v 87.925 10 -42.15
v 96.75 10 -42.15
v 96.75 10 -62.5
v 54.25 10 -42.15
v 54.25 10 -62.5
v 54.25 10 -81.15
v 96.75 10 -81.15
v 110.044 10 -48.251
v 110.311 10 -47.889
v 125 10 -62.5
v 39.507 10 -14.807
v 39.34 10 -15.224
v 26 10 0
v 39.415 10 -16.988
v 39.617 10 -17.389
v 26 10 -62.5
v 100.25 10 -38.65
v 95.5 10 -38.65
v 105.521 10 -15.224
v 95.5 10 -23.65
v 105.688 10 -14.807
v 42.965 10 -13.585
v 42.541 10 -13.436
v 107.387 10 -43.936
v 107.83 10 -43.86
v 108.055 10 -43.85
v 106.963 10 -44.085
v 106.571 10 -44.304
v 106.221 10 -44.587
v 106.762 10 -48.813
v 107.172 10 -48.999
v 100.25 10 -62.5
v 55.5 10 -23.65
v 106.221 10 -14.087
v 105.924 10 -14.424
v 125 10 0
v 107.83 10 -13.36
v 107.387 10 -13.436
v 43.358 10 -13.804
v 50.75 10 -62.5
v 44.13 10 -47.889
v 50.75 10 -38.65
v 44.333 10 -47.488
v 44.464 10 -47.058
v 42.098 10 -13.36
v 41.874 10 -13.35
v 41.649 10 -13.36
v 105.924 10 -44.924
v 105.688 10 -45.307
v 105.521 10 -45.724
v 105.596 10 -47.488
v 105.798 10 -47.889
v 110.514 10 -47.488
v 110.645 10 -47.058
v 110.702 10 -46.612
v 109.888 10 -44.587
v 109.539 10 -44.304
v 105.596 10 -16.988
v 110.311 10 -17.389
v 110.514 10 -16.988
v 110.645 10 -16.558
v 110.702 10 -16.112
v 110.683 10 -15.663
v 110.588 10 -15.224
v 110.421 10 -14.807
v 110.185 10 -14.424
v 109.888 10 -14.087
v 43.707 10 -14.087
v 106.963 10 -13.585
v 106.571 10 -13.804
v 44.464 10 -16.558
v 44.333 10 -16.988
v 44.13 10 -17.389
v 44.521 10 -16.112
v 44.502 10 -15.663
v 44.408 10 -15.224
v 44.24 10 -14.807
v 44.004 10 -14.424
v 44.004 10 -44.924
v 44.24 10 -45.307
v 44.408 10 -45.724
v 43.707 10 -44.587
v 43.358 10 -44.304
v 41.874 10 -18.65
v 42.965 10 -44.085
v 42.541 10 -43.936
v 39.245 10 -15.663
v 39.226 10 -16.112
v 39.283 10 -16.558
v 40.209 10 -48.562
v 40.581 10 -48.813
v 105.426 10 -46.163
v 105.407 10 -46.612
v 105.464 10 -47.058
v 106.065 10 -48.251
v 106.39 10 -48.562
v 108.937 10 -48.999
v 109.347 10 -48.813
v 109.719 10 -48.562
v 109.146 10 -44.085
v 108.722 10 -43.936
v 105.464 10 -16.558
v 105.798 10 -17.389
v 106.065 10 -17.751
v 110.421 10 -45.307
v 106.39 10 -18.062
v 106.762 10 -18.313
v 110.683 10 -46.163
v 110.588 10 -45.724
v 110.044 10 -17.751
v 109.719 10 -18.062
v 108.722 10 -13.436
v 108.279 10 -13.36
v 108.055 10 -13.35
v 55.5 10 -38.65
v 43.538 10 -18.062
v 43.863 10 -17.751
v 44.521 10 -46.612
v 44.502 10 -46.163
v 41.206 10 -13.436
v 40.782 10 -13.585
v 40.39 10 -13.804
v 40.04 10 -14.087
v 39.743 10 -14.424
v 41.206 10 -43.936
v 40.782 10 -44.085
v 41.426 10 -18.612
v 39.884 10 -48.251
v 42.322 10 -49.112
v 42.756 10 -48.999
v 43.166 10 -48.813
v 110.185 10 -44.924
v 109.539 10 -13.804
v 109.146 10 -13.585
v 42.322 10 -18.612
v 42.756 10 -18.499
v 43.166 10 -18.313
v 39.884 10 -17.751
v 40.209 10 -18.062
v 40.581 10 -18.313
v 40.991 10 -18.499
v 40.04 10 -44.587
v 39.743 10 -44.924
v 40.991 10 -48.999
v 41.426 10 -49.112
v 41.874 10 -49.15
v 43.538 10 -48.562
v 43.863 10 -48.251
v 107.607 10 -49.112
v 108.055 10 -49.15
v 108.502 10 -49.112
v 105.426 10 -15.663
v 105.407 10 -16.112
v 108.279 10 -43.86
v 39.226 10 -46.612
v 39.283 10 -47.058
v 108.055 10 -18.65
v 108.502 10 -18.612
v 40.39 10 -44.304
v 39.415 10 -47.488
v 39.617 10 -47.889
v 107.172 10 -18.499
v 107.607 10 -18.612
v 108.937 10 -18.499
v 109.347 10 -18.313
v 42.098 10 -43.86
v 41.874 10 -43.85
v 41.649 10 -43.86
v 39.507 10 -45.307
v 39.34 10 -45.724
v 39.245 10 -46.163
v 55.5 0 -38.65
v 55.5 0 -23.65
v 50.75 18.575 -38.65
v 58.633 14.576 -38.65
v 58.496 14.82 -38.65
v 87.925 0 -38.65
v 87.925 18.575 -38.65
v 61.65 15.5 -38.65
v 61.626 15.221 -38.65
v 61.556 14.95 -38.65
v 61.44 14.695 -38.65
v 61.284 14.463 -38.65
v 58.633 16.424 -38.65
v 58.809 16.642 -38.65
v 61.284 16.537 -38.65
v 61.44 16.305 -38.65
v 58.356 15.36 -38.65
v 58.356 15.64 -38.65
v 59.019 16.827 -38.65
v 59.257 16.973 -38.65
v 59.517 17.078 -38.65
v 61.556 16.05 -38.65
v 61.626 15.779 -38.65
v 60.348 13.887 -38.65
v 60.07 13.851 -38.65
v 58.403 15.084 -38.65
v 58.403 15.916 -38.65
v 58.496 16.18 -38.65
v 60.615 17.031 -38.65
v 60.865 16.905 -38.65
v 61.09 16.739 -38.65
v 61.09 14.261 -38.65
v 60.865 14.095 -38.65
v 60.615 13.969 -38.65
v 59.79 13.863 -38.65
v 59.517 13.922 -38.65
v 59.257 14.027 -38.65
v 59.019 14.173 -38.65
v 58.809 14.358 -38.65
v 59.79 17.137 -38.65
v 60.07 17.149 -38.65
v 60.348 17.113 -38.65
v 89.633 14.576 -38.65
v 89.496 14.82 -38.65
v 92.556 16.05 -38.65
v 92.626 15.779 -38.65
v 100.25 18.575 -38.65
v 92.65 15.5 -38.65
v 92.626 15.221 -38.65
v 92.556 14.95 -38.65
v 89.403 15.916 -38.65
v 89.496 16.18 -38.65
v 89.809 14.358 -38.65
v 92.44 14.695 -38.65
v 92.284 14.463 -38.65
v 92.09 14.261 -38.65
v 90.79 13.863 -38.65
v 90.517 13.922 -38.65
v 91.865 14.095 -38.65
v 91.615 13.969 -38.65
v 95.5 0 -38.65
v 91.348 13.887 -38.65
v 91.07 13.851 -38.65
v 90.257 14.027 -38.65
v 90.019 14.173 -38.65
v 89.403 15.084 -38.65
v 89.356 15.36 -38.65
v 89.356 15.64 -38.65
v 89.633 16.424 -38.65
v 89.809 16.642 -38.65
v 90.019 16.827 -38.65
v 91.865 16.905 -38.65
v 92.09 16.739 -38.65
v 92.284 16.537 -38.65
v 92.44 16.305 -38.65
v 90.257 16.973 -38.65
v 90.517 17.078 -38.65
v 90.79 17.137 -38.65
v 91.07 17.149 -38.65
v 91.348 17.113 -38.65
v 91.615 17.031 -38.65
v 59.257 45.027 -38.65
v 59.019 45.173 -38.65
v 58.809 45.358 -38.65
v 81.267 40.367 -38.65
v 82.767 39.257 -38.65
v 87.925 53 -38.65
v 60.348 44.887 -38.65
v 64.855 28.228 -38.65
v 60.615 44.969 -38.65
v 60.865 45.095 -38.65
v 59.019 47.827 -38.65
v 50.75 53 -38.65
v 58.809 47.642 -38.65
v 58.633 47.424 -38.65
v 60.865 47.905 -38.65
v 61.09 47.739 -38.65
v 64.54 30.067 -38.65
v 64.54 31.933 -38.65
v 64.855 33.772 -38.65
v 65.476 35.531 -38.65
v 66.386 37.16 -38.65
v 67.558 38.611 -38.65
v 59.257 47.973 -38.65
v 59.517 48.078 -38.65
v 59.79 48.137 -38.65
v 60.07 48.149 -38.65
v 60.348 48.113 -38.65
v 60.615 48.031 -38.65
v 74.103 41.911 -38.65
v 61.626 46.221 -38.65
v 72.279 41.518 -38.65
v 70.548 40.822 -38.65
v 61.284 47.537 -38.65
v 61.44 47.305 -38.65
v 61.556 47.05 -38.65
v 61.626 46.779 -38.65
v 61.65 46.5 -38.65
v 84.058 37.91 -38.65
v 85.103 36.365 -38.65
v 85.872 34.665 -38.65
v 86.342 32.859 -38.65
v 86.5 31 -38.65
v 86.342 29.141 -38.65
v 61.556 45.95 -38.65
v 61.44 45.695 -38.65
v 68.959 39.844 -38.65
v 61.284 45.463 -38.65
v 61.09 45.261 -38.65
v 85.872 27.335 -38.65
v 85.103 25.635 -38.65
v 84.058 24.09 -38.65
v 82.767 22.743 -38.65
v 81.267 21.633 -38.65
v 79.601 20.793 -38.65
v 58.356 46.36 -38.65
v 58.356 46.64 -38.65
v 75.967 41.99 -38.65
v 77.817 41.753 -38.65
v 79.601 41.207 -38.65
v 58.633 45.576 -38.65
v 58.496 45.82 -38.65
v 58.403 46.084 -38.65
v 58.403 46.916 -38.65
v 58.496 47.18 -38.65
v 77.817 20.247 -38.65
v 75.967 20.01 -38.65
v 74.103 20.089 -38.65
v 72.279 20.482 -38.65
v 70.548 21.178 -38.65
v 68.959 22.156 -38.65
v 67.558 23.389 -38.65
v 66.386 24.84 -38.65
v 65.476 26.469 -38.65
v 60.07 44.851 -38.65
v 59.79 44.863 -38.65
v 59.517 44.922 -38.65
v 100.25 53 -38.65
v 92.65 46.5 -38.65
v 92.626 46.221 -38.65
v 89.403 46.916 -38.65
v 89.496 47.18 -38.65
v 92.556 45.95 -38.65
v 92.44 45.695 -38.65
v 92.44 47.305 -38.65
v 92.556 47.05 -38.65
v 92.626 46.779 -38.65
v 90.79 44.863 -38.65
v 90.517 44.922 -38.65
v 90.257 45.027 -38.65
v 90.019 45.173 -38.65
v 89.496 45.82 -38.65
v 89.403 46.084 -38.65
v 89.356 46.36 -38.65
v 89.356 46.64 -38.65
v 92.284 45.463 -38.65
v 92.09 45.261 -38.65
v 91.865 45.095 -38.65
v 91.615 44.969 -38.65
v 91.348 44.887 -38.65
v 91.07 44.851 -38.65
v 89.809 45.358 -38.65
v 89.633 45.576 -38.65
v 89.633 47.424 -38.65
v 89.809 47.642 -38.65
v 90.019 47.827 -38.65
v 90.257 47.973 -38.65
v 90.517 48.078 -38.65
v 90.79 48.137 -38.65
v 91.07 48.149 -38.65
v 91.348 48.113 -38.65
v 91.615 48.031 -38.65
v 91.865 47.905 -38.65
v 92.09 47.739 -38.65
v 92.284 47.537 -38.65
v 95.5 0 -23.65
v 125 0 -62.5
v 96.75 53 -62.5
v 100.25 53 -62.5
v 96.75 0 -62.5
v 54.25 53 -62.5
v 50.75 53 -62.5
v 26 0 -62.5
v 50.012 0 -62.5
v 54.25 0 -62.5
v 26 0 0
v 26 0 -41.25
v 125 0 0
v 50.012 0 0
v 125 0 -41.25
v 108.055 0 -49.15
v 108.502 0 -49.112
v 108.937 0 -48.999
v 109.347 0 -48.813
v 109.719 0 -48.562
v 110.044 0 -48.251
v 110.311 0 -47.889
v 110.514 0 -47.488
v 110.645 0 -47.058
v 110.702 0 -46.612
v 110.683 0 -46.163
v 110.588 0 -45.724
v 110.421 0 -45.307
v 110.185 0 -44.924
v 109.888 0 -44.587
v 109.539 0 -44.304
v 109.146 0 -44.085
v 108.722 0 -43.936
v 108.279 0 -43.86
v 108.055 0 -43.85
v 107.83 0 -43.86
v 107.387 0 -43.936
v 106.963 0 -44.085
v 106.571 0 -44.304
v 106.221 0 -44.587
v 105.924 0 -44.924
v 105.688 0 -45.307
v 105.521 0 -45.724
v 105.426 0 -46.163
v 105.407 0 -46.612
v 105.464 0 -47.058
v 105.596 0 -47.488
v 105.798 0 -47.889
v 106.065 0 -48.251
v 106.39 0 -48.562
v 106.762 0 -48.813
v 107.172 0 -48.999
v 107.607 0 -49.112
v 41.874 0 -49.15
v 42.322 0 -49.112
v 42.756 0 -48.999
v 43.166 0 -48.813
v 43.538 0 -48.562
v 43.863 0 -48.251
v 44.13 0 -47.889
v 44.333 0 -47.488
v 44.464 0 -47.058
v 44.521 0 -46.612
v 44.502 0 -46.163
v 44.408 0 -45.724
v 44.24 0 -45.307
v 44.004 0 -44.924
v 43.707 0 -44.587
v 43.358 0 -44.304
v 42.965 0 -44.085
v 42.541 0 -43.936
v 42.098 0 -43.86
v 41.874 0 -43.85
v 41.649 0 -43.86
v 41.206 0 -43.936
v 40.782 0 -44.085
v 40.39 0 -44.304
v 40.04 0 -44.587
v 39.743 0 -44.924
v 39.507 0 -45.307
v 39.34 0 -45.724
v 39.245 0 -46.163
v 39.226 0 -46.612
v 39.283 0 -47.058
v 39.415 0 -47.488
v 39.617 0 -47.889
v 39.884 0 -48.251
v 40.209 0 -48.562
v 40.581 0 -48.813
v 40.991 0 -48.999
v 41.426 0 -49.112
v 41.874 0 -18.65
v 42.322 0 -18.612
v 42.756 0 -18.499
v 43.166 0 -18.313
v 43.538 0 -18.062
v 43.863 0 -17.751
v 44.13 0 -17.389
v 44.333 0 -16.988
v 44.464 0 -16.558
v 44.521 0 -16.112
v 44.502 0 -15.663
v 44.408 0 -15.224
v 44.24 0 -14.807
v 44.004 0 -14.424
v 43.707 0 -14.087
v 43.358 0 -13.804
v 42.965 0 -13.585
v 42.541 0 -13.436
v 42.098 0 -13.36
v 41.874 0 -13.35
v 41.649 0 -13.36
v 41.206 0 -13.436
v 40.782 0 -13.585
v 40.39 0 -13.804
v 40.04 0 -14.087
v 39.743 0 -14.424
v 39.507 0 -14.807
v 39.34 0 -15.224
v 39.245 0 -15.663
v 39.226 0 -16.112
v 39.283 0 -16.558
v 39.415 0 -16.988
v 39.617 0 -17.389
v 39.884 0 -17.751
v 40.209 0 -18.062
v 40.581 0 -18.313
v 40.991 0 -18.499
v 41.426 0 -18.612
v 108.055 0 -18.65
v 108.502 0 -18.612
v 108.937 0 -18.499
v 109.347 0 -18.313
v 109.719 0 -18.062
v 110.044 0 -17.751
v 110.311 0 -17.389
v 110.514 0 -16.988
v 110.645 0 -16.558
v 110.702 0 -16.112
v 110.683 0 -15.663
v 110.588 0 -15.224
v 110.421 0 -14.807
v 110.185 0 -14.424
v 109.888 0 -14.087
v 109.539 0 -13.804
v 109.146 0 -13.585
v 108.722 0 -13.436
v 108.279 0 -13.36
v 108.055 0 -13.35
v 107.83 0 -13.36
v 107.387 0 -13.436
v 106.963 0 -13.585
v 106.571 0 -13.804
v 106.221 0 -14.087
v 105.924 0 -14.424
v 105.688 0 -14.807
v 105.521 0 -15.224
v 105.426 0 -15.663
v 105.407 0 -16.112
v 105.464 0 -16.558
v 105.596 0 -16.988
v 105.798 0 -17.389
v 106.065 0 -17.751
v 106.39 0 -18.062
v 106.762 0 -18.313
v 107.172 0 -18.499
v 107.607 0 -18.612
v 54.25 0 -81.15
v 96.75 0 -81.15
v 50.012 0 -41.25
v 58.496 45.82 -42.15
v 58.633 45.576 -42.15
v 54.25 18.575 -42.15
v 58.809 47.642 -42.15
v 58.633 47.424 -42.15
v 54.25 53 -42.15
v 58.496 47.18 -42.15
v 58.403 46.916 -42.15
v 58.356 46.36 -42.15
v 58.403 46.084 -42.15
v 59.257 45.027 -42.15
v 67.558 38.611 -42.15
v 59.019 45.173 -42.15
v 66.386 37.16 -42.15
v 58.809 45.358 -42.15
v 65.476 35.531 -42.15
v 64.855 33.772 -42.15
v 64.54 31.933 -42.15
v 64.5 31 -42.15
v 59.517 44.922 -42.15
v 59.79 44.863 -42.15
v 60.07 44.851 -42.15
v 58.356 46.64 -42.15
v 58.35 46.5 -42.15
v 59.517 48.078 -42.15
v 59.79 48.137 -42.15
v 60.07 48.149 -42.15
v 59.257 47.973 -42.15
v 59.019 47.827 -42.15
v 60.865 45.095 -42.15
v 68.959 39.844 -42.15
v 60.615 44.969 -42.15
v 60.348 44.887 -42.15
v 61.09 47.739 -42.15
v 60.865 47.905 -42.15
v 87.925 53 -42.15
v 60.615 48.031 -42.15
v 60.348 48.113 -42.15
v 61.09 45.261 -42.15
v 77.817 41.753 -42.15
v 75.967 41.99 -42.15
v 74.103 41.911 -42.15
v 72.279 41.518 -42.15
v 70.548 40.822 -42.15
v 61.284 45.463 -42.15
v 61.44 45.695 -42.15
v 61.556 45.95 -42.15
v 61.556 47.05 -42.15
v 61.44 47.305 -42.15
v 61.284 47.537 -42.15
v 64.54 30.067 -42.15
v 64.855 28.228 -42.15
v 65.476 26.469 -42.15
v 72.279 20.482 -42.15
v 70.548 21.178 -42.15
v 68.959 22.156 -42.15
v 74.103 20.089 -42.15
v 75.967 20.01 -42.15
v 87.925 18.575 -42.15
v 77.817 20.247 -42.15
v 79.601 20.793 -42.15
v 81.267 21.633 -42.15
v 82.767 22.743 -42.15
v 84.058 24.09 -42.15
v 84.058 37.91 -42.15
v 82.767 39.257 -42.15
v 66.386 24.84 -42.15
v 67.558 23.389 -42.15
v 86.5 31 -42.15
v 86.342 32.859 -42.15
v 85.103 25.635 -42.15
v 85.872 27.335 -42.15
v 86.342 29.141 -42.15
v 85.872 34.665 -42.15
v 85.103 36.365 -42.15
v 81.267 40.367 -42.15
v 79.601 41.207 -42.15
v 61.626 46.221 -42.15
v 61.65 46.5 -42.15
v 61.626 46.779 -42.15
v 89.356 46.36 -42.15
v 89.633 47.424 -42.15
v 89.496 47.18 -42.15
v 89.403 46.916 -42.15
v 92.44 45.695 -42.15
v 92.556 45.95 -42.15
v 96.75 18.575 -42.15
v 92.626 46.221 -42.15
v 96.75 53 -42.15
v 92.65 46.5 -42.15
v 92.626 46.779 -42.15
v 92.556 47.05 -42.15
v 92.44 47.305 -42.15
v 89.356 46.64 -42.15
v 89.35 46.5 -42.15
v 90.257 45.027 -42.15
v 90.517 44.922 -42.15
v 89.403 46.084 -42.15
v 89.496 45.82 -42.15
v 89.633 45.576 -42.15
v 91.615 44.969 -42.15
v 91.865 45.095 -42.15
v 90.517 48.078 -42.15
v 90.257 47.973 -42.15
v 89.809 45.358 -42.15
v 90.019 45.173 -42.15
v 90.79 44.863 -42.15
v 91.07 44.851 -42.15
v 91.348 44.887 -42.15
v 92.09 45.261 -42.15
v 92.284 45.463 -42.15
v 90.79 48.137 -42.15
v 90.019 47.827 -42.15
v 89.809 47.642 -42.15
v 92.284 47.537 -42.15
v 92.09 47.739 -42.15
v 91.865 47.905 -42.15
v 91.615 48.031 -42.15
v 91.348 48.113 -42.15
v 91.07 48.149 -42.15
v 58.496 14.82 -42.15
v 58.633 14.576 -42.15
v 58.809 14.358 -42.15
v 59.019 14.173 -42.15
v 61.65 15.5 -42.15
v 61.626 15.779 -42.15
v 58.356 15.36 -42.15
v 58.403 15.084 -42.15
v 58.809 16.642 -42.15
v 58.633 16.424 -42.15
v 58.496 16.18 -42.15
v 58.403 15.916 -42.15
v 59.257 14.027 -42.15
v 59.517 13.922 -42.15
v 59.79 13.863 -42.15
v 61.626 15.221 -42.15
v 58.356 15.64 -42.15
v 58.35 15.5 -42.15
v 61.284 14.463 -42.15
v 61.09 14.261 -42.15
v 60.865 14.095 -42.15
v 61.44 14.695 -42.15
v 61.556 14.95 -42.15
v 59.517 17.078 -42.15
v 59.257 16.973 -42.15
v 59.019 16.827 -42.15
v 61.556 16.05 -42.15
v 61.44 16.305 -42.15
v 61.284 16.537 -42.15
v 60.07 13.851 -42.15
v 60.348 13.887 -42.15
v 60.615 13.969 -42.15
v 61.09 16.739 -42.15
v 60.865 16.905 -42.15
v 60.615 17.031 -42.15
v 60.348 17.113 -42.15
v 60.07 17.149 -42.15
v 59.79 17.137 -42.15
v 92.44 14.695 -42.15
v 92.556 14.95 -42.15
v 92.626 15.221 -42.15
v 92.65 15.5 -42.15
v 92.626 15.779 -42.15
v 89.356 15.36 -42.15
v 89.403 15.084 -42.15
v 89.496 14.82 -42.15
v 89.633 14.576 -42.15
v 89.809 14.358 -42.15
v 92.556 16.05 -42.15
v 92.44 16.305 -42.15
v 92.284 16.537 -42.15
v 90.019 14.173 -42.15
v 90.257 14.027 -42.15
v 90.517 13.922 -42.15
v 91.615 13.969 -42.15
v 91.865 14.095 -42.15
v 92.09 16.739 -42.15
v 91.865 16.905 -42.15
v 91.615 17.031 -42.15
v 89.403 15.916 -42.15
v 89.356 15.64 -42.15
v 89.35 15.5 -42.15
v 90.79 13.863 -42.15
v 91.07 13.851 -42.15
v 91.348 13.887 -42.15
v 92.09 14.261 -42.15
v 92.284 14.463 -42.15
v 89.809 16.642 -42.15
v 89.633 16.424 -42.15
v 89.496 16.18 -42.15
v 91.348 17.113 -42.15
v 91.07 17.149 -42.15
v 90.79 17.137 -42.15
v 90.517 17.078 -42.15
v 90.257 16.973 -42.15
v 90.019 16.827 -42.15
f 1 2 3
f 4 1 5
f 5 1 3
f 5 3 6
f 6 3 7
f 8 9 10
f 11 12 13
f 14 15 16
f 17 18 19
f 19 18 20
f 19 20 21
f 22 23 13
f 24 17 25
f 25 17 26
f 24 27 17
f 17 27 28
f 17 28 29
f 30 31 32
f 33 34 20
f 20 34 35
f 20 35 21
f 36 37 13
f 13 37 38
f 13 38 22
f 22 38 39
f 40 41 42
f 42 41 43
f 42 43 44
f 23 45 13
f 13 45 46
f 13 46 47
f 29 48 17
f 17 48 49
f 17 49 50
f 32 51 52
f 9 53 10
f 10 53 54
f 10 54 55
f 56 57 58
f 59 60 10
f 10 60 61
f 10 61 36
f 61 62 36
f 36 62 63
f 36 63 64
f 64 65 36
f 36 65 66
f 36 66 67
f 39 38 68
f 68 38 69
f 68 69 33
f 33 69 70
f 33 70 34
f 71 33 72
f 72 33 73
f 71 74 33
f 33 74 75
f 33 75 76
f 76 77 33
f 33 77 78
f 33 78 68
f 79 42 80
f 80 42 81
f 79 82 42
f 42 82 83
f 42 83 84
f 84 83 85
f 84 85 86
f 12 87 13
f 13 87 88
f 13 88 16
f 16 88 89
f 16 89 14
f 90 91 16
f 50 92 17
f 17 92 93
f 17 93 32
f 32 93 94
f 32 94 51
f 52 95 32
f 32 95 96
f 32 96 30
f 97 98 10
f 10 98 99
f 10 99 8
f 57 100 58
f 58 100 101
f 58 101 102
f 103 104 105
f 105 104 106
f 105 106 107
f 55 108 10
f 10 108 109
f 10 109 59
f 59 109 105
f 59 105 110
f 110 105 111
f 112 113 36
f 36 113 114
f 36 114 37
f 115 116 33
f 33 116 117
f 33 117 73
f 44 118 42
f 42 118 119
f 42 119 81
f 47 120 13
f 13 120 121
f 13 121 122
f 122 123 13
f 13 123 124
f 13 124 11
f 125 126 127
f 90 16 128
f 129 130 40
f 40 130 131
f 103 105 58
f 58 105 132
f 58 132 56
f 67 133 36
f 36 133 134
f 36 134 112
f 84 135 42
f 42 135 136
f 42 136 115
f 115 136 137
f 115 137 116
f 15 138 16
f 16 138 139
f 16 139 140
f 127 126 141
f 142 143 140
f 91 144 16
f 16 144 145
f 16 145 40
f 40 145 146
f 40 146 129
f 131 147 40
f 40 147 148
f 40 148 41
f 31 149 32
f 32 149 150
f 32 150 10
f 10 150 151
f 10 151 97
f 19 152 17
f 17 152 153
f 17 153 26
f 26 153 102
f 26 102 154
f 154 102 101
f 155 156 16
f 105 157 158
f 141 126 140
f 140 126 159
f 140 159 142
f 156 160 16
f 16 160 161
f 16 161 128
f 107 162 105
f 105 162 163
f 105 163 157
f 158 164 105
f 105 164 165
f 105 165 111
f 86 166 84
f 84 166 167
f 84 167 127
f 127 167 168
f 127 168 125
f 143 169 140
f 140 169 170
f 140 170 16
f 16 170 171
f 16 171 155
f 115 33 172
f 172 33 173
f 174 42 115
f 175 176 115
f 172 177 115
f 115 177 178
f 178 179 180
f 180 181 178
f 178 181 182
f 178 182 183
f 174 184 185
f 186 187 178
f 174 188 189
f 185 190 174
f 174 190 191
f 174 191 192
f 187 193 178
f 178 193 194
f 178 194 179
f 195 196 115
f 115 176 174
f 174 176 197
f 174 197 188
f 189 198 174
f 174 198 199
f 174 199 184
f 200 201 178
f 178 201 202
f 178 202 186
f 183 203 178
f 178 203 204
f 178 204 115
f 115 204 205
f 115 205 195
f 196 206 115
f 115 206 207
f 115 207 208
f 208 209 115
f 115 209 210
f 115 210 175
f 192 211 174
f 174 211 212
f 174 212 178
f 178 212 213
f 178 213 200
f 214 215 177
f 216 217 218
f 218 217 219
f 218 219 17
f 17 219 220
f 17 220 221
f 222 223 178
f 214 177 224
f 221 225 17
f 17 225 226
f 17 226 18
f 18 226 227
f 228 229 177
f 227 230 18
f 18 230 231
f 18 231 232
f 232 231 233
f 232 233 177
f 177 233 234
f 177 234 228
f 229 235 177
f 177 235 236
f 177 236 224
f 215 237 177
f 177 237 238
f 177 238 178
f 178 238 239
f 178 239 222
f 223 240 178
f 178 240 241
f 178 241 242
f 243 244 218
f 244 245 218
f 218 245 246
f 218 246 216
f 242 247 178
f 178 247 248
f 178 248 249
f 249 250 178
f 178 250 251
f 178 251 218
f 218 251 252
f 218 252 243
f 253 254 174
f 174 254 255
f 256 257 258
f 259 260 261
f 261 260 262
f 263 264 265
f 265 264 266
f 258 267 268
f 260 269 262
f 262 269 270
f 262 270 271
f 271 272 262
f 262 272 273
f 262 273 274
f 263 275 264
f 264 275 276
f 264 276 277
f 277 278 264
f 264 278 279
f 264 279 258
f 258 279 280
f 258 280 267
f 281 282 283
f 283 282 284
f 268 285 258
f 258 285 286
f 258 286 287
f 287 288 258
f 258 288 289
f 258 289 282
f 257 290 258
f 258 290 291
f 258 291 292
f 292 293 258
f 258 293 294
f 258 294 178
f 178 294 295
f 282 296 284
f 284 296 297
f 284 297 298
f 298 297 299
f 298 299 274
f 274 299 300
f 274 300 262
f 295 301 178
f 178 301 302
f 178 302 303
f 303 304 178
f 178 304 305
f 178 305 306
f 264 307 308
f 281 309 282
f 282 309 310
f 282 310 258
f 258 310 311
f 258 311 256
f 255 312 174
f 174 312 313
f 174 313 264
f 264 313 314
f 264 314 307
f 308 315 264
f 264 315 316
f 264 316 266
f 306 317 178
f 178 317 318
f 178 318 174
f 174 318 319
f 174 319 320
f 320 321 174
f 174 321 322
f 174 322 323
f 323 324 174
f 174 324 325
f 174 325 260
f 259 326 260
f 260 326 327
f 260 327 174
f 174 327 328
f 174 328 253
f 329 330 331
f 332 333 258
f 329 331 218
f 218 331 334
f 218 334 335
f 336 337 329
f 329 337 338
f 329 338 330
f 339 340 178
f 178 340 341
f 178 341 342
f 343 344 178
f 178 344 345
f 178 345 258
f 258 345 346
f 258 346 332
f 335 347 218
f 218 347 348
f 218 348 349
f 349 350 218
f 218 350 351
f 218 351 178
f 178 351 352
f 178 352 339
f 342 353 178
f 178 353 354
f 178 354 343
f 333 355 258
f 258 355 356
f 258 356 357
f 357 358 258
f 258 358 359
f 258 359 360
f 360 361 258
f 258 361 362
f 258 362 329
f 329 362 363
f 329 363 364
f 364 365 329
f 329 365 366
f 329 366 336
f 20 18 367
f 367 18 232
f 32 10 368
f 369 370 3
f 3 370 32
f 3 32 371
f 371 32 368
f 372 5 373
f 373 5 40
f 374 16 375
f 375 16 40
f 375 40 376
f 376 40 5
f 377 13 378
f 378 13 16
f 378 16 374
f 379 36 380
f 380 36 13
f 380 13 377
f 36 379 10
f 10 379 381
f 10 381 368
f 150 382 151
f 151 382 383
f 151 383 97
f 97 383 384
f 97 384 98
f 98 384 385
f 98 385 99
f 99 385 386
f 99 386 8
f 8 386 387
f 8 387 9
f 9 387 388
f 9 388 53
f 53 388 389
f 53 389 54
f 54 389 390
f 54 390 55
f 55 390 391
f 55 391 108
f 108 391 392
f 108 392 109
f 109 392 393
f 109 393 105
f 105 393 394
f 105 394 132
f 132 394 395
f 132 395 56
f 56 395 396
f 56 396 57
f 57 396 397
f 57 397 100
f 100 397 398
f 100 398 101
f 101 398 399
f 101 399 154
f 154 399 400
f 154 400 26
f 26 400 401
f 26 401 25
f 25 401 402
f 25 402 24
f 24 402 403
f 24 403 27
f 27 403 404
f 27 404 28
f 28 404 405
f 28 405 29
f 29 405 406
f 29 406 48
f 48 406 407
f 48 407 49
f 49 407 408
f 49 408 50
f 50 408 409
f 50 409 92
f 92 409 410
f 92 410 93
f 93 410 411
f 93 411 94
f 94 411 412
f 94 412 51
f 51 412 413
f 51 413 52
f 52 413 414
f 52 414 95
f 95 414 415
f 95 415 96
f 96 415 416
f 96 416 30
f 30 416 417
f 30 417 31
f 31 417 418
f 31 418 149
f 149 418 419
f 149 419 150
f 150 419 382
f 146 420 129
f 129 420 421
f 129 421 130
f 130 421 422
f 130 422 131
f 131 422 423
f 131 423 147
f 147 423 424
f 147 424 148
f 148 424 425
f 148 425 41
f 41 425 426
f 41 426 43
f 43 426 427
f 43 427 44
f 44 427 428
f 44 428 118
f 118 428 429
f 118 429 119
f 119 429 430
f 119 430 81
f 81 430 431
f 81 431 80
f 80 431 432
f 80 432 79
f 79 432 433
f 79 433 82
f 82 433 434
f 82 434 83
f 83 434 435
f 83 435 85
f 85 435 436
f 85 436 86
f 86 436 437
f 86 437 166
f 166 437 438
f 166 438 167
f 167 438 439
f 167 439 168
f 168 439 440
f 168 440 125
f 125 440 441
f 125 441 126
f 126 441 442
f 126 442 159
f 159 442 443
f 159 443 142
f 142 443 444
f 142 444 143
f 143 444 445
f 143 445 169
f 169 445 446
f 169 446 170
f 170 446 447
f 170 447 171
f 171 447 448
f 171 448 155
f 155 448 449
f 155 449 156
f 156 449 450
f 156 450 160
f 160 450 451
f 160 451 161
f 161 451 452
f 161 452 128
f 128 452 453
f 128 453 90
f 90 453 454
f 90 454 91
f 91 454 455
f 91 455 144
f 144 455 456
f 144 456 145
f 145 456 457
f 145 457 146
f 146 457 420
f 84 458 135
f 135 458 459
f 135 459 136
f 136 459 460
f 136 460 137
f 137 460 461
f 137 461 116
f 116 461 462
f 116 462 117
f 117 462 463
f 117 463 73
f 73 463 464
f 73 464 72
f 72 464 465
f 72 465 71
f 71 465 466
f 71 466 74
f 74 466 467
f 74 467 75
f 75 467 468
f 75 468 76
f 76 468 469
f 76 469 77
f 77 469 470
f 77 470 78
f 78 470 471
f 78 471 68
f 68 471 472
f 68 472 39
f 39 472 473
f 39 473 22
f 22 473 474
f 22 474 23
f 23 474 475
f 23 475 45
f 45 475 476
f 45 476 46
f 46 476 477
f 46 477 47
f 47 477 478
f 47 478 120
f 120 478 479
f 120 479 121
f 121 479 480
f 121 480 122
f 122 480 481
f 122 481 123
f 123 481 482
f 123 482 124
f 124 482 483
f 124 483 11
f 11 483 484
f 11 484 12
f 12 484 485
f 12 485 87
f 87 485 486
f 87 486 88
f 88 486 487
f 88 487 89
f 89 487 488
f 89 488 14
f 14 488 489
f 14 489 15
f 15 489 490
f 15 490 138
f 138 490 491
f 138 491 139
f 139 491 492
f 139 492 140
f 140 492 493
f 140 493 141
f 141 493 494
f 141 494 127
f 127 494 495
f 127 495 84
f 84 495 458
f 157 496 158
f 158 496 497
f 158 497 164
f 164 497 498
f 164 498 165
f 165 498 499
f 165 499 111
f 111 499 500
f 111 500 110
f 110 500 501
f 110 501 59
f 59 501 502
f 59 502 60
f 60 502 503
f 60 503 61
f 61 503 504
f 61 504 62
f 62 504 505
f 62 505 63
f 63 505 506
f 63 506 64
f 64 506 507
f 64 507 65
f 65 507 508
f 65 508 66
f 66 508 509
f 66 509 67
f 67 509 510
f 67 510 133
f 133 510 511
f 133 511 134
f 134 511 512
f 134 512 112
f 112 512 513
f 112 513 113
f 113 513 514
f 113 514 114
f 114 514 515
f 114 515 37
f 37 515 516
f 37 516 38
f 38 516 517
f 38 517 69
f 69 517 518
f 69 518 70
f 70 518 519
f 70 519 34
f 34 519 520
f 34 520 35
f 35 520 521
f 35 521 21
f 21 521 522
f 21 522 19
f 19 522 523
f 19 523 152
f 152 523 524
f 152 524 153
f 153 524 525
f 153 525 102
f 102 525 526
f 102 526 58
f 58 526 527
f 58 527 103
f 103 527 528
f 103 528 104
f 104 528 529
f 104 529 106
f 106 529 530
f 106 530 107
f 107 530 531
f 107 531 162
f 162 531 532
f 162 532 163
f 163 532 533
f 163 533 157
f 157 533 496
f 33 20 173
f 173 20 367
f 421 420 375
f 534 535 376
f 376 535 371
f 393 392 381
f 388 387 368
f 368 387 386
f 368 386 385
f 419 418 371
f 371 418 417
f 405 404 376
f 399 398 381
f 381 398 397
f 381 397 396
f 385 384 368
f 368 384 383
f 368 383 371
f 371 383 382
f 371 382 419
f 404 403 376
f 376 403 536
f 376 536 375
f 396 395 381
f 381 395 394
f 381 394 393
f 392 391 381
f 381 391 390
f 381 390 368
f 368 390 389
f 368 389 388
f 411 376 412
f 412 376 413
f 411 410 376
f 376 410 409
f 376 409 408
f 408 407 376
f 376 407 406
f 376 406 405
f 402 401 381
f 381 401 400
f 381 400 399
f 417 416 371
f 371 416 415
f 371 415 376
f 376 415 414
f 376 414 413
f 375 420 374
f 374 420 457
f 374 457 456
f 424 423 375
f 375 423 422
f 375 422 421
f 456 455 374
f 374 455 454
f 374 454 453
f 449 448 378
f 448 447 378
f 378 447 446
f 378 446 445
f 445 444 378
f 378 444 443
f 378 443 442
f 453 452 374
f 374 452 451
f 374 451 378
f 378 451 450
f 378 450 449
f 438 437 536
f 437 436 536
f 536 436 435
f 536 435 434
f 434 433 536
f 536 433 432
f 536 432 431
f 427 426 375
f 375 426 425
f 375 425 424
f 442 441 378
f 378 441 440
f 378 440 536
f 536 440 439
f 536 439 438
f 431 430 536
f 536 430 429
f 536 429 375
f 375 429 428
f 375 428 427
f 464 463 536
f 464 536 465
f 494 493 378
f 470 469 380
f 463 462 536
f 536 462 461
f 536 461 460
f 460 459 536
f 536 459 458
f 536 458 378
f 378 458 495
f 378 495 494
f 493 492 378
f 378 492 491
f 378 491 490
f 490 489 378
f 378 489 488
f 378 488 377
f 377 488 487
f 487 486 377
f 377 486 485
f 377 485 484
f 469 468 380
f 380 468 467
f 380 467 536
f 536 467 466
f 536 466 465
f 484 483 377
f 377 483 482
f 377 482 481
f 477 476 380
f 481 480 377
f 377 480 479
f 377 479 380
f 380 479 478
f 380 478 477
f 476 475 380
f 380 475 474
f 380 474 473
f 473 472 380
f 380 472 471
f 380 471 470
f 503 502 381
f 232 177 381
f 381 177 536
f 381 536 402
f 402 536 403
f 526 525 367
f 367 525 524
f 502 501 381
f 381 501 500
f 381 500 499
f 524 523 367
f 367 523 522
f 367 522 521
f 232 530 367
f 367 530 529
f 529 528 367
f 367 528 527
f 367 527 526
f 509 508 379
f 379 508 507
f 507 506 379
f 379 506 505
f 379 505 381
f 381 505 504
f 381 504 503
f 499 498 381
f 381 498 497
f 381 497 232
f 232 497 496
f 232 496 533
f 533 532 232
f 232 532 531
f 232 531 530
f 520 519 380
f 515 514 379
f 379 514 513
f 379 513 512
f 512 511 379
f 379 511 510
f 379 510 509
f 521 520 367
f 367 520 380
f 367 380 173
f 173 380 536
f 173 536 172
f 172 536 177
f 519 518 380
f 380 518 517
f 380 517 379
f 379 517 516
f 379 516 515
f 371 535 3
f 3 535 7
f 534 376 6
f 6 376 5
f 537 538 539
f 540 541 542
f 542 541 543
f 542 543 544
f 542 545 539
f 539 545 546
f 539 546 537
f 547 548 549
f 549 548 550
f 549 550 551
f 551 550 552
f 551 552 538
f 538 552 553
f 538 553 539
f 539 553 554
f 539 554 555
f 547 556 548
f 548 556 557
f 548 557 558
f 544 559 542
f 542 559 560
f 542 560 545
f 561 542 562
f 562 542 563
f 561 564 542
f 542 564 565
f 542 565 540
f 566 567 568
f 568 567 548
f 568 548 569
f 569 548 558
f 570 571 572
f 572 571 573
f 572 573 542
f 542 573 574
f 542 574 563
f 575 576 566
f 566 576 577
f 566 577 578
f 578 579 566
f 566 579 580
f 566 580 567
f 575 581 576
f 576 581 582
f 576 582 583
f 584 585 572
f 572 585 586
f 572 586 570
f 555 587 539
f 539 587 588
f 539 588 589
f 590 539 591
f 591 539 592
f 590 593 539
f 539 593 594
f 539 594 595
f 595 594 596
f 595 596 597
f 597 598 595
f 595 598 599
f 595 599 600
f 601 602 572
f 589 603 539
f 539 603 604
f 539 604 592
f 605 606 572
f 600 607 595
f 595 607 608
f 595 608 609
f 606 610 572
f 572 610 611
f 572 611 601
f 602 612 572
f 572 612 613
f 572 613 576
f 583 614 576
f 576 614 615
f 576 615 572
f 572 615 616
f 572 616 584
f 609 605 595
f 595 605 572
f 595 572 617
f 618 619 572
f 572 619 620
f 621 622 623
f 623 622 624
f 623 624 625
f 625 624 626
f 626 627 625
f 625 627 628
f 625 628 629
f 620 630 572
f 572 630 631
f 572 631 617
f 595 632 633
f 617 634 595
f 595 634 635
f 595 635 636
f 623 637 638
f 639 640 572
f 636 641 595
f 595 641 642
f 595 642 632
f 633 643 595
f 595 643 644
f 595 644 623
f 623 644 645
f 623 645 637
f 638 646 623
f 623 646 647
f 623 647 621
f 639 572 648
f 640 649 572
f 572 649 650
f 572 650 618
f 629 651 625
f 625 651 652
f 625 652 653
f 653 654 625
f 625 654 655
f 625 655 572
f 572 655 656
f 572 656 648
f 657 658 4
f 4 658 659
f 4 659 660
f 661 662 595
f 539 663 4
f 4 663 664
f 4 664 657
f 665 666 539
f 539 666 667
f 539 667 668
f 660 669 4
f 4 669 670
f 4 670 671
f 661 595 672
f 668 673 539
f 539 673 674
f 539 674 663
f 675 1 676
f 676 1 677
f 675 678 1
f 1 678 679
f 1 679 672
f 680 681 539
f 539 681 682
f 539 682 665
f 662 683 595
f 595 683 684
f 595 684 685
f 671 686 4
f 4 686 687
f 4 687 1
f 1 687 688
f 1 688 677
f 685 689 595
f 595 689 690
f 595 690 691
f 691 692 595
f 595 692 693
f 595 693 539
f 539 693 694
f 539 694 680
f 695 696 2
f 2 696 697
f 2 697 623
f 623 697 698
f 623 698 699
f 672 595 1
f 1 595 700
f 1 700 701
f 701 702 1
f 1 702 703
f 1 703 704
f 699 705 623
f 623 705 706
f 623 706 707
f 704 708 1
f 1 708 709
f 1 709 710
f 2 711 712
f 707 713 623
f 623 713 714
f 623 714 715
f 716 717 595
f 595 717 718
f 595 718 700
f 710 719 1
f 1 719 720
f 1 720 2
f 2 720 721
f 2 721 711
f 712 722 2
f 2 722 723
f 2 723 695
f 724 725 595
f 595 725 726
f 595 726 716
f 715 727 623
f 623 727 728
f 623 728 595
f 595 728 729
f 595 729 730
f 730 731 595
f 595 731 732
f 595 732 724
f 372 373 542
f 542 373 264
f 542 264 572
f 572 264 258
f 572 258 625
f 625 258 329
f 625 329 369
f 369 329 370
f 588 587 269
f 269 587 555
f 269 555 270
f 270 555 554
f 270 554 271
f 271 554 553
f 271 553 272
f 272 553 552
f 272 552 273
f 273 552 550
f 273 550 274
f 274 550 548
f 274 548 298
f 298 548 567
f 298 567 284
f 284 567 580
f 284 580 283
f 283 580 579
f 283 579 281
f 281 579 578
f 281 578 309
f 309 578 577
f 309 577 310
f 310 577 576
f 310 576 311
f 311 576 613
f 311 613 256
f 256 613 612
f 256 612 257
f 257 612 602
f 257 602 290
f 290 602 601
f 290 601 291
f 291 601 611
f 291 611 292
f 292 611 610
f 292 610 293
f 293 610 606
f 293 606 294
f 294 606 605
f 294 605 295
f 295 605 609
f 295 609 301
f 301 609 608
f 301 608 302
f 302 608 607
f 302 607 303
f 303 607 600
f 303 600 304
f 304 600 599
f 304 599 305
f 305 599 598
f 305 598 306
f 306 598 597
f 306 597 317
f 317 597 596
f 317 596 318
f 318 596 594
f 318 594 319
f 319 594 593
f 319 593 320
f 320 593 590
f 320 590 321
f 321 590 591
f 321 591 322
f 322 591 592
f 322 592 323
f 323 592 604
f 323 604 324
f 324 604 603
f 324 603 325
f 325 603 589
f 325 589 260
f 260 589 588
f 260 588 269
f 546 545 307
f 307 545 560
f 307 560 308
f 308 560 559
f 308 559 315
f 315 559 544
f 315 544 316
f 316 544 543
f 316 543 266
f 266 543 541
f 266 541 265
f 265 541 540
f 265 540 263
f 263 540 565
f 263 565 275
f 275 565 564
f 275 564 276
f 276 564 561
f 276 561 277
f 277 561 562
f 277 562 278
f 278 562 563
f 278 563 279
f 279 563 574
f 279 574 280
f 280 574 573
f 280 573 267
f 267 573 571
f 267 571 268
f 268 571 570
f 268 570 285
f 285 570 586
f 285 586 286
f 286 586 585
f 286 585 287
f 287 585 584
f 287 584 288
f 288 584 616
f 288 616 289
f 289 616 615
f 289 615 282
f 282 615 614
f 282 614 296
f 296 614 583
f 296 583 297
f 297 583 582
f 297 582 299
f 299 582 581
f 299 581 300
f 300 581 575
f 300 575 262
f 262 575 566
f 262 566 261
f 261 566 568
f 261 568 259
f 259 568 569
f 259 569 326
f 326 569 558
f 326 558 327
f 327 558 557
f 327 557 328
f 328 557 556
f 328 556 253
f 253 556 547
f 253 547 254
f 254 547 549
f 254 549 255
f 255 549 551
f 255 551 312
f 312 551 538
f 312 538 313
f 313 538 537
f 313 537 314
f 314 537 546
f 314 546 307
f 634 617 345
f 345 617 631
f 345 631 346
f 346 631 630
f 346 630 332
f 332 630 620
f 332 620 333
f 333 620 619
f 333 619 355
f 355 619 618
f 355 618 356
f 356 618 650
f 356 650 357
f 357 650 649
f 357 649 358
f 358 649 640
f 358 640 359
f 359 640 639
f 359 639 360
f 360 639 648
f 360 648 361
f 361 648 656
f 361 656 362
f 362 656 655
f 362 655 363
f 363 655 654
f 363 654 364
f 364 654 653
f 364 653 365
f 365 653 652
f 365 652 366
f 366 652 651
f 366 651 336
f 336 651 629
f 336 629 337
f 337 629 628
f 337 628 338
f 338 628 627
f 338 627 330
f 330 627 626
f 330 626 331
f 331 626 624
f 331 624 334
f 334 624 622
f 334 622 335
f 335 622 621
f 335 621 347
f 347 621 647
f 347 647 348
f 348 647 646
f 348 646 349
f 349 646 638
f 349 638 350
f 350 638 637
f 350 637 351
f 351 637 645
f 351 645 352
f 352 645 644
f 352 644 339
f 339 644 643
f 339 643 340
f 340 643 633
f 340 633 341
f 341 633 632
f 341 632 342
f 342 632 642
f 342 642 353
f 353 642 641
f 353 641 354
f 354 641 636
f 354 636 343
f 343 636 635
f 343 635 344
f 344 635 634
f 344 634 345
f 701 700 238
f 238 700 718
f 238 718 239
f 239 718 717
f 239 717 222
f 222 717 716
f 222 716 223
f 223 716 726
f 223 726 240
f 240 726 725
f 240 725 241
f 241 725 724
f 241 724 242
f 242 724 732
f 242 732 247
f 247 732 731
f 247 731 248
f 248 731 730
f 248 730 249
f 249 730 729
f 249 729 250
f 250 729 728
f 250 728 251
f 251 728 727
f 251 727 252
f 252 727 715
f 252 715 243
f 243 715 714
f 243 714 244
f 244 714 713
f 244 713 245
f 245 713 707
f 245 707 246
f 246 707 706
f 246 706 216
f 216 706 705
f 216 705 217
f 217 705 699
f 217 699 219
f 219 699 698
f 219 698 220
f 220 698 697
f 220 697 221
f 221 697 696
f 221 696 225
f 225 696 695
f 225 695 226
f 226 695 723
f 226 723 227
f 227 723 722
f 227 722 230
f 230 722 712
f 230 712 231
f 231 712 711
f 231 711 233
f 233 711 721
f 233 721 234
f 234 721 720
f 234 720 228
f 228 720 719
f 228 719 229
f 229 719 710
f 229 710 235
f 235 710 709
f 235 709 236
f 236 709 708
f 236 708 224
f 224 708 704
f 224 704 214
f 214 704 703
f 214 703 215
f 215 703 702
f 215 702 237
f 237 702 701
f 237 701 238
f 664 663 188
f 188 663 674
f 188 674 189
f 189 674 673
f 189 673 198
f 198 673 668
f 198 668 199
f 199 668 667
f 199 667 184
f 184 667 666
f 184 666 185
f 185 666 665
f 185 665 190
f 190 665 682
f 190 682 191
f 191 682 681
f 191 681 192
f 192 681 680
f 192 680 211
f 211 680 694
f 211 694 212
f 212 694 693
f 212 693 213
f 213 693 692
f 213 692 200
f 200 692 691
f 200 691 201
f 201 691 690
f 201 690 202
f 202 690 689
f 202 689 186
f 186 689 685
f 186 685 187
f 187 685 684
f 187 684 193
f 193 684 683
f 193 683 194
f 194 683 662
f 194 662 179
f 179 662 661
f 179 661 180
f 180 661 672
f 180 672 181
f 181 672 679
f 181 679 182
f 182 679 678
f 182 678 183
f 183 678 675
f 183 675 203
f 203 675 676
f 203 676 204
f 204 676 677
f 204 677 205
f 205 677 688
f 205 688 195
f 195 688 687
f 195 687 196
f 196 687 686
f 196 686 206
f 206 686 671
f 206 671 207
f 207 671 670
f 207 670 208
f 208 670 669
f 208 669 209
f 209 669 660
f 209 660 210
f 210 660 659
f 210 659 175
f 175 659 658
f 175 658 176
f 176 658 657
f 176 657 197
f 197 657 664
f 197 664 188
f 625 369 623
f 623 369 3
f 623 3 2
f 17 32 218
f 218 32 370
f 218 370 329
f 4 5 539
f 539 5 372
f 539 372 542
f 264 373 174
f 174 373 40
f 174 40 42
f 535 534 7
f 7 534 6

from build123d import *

# Parameters (mm, degrees)
SKETCH1_R           = 2.65
SKETCH1_W           = 40
SKETCH1_H           = 15
BOSS_EXTRUDE1_DEPTH = 10
CUT_EXTRUDE2_DEPTH  = 10
BOSS_EXTRUDE3_DEPTH = 43
CUT_EXTRUDE3_REACH  = 143.262
SKETCH13_R          = 11
SKETCH13_R_2        = 1.65
SKETCH15_W          = 3.5
SKETCH15_H          = 23.85
BOSS_EXTRUDE4_DEPTH = 43
SKETCH16_W          = 42.5
SKETCH16_H          = 3.5
BOSS_EXTRUDE5_DEPTH = 10


with BuildPart() as part:
    # Sketch1 → Boss-Extrude1 (new body)
    with BuildSketch(Plane(origin=(0, 0, 0), x_dir=(1, 0, 0), z_dir=(0, 1, 0))):
        Polygon((51, 85.65), (48, 85.65), (48, 62.5), (26, 62.5), (26, 0), (125, 0), (125, 62.5), (103, 62.5), (103, 85.65), (100, 85.65), align=None)
        with Locations(Location((108.05464, 46.5, 0), (0, 0, 270))):
            Circle(SKETCH1_R, mode=Mode.SUBTRACT)
        with Locations(Location((41.87366, 46.5, 0), (0, 0, 270))):
            Circle(SKETCH1_R, mode=Mode.SUBTRACT)
        with Locations(Location((41.87366, 16, 0), (0, 0, 270))):
            Circle(SKETCH1_R, mode=Mode.SUBTRACT)
        with Locations(Location((108.05464, 16, 0), (0, 0, 270))):
            Circle(SKETCH1_R, mode=Mode.SUBTRACT)
        with Locations((75.5, 31.15)):
            Rectangle(SKETCH1_W, SKETCH1_H, mode=Mode.SUBTRACT)
    extrude(amount=BOSS_EXTRUDE1_DEPTH)

    # Sketch8 → Cut-Extrude2 (cut)
    with BuildSketch(Plane(origin=(0, 10, 0), x_dir=(1, 0, 0), z_dir=(0, 1, 0))):
        Polygon((96.75, 70.488685564), (96.75, 62.5), (103, 62.5), (103, 85.65), (48, 85.65), (48, 62.5), (54.25, 62.5), (54.25, 70.488685564), (54.25, 77.65), (76, 77.65), (96.75, 77.65), align=None)
    extrude(amount=-CUT_EXTRUDE2_DEPTH, mode=Mode.SUBTRACT)

    # Sketch12 → Boss-Extrude3 (add)
    with BuildSketch(Plane(origin=(0, 10, 0), x_dir=(1, 0, 0), z_dir=(0, 1, 0))):
        Polygon((96.75, 42.15), (54.25, 42.15), (54.25, 38.65), (55.5, 38.65), (95.5, 38.65), (96.75, 38.65), align=None)
    extrude(amount=BOSS_EXTRUDE3_DEPTH)

    # Sketch13 → Cut-Extrude3 (cut, up to next)
    with BuildSketch(Plane.XY.offset(-38.65), mode=Mode.PRIVATE) as cut_extrude3_sk1:
        with Locations((75.5, 31)):
            Circle(SKETCH13_R)
    cut_extrude3_tool1 = extrude(cut_extrude3_sk1.sketch, amount=-CUT_EXTRUDE3_REACH, mode=Mode.PRIVATE) & part.part
    # Sketch13 → Cut-Extrude3 (cut, up to next)
    with BuildSketch(Plane.XY.offset(-38.65), mode=Mode.PRIVATE) as cut_extrude3_sk2:
        with Locations((60, 46.5)):
            Circle(SKETCH13_R_2)
    cut_extrude3_tool2 = extrude(cut_extrude3_sk2.sketch, amount=-CUT_EXTRUDE3_REACH, mode=Mode.PRIVATE) & part.part
    # Sketch13 → Cut-Extrude3 (cut, up to next)
    with BuildSketch(Plane.XY.offset(-38.65), mode=Mode.PRIVATE) as cut_extrude3_sk3:
        with Locations((91, 46.5)):
            Circle(SKETCH13_R_2)
    cut_extrude3_tool3 = extrude(cut_extrude3_sk3.sketch, amount=-CUT_EXTRUDE3_REACH, mode=Mode.PRIVATE) & part.part
    # Sketch13 → Cut-Extrude3 (cut, up to next)
    with BuildSketch(Plane.XY.offset(-38.65), mode=Mode.PRIVATE) as cut_extrude3_sk4:
        with Locations((91, 15.5)):
            Circle(SKETCH13_R_2)
    cut_extrude3_tool4 = extrude(cut_extrude3_sk4.sketch, amount=-CUT_EXTRUDE3_REACH, mode=Mode.PRIVATE) & part.part
    # Sketch13 → Cut-Extrude3 (cut, up to next)
    with BuildSketch(Plane.XY.offset(-38.65), mode=Mode.PRIVATE) as cut_extrude3_sk5:
        with Locations((60, 15.5)):
            Circle(SKETCH13_R_2)
    cut_extrude3_tool5 = extrude(cut_extrude3_sk5.sketch, amount=-CUT_EXTRUDE3_REACH, mode=Mode.PRIVATE) & part.part
    add(cut_extrude3_tool1.solids().sort_by_distance((75.5, 31, -38.65))[0], mode=Mode.SUBTRACT)
    add(cut_extrude3_tool2.solids().sort_by_distance((60, 46.5, -38.65))[0], mode=Mode.SUBTRACT)
    add(cut_extrude3_tool3.solids().sort_by_distance((91, 46.5, -38.65))[0], mode=Mode.SUBTRACT)
    add(cut_extrude3_tool4.solids().sort_by_distance((91, 15.5, -38.65))[0], mode=Mode.SUBTRACT)
    add(cut_extrude3_tool5.solids().sort_by_distance((60, 15.5, -38.65))[0], mode=Mode.SUBTRACT)

    # Sketch15 → Boss-Extrude4 (add)
    with BuildSketch(Plane(origin=(0, 10, 0), x_dir=(1, 0, 0), z_dir=(0, 1, 0))):
        with Locations((98.5, 50.575)):
            Rectangle(SKETCH15_W, SKETCH15_H)
        with Locations((52.5, 50.575)):
            Rectangle(SKETCH15_W, SKETCH15_H)
    extrude(amount=BOSS_EXTRUDE4_DEPTH)

    # Sketch16 → Boss-Extrude5 (add)
    with BuildSketch(Plane(origin=(0, 10, 0), x_dir=(1, 0, 0), z_dir=(0, 1, 0))):
        with Locations((75.5, 79.4)):
            Rectangle(SKETCH16_W, SKETCH16_H)
    extrude(amount=-BOSS_EXTRUDE5_DEPTH)


solid = part.part
